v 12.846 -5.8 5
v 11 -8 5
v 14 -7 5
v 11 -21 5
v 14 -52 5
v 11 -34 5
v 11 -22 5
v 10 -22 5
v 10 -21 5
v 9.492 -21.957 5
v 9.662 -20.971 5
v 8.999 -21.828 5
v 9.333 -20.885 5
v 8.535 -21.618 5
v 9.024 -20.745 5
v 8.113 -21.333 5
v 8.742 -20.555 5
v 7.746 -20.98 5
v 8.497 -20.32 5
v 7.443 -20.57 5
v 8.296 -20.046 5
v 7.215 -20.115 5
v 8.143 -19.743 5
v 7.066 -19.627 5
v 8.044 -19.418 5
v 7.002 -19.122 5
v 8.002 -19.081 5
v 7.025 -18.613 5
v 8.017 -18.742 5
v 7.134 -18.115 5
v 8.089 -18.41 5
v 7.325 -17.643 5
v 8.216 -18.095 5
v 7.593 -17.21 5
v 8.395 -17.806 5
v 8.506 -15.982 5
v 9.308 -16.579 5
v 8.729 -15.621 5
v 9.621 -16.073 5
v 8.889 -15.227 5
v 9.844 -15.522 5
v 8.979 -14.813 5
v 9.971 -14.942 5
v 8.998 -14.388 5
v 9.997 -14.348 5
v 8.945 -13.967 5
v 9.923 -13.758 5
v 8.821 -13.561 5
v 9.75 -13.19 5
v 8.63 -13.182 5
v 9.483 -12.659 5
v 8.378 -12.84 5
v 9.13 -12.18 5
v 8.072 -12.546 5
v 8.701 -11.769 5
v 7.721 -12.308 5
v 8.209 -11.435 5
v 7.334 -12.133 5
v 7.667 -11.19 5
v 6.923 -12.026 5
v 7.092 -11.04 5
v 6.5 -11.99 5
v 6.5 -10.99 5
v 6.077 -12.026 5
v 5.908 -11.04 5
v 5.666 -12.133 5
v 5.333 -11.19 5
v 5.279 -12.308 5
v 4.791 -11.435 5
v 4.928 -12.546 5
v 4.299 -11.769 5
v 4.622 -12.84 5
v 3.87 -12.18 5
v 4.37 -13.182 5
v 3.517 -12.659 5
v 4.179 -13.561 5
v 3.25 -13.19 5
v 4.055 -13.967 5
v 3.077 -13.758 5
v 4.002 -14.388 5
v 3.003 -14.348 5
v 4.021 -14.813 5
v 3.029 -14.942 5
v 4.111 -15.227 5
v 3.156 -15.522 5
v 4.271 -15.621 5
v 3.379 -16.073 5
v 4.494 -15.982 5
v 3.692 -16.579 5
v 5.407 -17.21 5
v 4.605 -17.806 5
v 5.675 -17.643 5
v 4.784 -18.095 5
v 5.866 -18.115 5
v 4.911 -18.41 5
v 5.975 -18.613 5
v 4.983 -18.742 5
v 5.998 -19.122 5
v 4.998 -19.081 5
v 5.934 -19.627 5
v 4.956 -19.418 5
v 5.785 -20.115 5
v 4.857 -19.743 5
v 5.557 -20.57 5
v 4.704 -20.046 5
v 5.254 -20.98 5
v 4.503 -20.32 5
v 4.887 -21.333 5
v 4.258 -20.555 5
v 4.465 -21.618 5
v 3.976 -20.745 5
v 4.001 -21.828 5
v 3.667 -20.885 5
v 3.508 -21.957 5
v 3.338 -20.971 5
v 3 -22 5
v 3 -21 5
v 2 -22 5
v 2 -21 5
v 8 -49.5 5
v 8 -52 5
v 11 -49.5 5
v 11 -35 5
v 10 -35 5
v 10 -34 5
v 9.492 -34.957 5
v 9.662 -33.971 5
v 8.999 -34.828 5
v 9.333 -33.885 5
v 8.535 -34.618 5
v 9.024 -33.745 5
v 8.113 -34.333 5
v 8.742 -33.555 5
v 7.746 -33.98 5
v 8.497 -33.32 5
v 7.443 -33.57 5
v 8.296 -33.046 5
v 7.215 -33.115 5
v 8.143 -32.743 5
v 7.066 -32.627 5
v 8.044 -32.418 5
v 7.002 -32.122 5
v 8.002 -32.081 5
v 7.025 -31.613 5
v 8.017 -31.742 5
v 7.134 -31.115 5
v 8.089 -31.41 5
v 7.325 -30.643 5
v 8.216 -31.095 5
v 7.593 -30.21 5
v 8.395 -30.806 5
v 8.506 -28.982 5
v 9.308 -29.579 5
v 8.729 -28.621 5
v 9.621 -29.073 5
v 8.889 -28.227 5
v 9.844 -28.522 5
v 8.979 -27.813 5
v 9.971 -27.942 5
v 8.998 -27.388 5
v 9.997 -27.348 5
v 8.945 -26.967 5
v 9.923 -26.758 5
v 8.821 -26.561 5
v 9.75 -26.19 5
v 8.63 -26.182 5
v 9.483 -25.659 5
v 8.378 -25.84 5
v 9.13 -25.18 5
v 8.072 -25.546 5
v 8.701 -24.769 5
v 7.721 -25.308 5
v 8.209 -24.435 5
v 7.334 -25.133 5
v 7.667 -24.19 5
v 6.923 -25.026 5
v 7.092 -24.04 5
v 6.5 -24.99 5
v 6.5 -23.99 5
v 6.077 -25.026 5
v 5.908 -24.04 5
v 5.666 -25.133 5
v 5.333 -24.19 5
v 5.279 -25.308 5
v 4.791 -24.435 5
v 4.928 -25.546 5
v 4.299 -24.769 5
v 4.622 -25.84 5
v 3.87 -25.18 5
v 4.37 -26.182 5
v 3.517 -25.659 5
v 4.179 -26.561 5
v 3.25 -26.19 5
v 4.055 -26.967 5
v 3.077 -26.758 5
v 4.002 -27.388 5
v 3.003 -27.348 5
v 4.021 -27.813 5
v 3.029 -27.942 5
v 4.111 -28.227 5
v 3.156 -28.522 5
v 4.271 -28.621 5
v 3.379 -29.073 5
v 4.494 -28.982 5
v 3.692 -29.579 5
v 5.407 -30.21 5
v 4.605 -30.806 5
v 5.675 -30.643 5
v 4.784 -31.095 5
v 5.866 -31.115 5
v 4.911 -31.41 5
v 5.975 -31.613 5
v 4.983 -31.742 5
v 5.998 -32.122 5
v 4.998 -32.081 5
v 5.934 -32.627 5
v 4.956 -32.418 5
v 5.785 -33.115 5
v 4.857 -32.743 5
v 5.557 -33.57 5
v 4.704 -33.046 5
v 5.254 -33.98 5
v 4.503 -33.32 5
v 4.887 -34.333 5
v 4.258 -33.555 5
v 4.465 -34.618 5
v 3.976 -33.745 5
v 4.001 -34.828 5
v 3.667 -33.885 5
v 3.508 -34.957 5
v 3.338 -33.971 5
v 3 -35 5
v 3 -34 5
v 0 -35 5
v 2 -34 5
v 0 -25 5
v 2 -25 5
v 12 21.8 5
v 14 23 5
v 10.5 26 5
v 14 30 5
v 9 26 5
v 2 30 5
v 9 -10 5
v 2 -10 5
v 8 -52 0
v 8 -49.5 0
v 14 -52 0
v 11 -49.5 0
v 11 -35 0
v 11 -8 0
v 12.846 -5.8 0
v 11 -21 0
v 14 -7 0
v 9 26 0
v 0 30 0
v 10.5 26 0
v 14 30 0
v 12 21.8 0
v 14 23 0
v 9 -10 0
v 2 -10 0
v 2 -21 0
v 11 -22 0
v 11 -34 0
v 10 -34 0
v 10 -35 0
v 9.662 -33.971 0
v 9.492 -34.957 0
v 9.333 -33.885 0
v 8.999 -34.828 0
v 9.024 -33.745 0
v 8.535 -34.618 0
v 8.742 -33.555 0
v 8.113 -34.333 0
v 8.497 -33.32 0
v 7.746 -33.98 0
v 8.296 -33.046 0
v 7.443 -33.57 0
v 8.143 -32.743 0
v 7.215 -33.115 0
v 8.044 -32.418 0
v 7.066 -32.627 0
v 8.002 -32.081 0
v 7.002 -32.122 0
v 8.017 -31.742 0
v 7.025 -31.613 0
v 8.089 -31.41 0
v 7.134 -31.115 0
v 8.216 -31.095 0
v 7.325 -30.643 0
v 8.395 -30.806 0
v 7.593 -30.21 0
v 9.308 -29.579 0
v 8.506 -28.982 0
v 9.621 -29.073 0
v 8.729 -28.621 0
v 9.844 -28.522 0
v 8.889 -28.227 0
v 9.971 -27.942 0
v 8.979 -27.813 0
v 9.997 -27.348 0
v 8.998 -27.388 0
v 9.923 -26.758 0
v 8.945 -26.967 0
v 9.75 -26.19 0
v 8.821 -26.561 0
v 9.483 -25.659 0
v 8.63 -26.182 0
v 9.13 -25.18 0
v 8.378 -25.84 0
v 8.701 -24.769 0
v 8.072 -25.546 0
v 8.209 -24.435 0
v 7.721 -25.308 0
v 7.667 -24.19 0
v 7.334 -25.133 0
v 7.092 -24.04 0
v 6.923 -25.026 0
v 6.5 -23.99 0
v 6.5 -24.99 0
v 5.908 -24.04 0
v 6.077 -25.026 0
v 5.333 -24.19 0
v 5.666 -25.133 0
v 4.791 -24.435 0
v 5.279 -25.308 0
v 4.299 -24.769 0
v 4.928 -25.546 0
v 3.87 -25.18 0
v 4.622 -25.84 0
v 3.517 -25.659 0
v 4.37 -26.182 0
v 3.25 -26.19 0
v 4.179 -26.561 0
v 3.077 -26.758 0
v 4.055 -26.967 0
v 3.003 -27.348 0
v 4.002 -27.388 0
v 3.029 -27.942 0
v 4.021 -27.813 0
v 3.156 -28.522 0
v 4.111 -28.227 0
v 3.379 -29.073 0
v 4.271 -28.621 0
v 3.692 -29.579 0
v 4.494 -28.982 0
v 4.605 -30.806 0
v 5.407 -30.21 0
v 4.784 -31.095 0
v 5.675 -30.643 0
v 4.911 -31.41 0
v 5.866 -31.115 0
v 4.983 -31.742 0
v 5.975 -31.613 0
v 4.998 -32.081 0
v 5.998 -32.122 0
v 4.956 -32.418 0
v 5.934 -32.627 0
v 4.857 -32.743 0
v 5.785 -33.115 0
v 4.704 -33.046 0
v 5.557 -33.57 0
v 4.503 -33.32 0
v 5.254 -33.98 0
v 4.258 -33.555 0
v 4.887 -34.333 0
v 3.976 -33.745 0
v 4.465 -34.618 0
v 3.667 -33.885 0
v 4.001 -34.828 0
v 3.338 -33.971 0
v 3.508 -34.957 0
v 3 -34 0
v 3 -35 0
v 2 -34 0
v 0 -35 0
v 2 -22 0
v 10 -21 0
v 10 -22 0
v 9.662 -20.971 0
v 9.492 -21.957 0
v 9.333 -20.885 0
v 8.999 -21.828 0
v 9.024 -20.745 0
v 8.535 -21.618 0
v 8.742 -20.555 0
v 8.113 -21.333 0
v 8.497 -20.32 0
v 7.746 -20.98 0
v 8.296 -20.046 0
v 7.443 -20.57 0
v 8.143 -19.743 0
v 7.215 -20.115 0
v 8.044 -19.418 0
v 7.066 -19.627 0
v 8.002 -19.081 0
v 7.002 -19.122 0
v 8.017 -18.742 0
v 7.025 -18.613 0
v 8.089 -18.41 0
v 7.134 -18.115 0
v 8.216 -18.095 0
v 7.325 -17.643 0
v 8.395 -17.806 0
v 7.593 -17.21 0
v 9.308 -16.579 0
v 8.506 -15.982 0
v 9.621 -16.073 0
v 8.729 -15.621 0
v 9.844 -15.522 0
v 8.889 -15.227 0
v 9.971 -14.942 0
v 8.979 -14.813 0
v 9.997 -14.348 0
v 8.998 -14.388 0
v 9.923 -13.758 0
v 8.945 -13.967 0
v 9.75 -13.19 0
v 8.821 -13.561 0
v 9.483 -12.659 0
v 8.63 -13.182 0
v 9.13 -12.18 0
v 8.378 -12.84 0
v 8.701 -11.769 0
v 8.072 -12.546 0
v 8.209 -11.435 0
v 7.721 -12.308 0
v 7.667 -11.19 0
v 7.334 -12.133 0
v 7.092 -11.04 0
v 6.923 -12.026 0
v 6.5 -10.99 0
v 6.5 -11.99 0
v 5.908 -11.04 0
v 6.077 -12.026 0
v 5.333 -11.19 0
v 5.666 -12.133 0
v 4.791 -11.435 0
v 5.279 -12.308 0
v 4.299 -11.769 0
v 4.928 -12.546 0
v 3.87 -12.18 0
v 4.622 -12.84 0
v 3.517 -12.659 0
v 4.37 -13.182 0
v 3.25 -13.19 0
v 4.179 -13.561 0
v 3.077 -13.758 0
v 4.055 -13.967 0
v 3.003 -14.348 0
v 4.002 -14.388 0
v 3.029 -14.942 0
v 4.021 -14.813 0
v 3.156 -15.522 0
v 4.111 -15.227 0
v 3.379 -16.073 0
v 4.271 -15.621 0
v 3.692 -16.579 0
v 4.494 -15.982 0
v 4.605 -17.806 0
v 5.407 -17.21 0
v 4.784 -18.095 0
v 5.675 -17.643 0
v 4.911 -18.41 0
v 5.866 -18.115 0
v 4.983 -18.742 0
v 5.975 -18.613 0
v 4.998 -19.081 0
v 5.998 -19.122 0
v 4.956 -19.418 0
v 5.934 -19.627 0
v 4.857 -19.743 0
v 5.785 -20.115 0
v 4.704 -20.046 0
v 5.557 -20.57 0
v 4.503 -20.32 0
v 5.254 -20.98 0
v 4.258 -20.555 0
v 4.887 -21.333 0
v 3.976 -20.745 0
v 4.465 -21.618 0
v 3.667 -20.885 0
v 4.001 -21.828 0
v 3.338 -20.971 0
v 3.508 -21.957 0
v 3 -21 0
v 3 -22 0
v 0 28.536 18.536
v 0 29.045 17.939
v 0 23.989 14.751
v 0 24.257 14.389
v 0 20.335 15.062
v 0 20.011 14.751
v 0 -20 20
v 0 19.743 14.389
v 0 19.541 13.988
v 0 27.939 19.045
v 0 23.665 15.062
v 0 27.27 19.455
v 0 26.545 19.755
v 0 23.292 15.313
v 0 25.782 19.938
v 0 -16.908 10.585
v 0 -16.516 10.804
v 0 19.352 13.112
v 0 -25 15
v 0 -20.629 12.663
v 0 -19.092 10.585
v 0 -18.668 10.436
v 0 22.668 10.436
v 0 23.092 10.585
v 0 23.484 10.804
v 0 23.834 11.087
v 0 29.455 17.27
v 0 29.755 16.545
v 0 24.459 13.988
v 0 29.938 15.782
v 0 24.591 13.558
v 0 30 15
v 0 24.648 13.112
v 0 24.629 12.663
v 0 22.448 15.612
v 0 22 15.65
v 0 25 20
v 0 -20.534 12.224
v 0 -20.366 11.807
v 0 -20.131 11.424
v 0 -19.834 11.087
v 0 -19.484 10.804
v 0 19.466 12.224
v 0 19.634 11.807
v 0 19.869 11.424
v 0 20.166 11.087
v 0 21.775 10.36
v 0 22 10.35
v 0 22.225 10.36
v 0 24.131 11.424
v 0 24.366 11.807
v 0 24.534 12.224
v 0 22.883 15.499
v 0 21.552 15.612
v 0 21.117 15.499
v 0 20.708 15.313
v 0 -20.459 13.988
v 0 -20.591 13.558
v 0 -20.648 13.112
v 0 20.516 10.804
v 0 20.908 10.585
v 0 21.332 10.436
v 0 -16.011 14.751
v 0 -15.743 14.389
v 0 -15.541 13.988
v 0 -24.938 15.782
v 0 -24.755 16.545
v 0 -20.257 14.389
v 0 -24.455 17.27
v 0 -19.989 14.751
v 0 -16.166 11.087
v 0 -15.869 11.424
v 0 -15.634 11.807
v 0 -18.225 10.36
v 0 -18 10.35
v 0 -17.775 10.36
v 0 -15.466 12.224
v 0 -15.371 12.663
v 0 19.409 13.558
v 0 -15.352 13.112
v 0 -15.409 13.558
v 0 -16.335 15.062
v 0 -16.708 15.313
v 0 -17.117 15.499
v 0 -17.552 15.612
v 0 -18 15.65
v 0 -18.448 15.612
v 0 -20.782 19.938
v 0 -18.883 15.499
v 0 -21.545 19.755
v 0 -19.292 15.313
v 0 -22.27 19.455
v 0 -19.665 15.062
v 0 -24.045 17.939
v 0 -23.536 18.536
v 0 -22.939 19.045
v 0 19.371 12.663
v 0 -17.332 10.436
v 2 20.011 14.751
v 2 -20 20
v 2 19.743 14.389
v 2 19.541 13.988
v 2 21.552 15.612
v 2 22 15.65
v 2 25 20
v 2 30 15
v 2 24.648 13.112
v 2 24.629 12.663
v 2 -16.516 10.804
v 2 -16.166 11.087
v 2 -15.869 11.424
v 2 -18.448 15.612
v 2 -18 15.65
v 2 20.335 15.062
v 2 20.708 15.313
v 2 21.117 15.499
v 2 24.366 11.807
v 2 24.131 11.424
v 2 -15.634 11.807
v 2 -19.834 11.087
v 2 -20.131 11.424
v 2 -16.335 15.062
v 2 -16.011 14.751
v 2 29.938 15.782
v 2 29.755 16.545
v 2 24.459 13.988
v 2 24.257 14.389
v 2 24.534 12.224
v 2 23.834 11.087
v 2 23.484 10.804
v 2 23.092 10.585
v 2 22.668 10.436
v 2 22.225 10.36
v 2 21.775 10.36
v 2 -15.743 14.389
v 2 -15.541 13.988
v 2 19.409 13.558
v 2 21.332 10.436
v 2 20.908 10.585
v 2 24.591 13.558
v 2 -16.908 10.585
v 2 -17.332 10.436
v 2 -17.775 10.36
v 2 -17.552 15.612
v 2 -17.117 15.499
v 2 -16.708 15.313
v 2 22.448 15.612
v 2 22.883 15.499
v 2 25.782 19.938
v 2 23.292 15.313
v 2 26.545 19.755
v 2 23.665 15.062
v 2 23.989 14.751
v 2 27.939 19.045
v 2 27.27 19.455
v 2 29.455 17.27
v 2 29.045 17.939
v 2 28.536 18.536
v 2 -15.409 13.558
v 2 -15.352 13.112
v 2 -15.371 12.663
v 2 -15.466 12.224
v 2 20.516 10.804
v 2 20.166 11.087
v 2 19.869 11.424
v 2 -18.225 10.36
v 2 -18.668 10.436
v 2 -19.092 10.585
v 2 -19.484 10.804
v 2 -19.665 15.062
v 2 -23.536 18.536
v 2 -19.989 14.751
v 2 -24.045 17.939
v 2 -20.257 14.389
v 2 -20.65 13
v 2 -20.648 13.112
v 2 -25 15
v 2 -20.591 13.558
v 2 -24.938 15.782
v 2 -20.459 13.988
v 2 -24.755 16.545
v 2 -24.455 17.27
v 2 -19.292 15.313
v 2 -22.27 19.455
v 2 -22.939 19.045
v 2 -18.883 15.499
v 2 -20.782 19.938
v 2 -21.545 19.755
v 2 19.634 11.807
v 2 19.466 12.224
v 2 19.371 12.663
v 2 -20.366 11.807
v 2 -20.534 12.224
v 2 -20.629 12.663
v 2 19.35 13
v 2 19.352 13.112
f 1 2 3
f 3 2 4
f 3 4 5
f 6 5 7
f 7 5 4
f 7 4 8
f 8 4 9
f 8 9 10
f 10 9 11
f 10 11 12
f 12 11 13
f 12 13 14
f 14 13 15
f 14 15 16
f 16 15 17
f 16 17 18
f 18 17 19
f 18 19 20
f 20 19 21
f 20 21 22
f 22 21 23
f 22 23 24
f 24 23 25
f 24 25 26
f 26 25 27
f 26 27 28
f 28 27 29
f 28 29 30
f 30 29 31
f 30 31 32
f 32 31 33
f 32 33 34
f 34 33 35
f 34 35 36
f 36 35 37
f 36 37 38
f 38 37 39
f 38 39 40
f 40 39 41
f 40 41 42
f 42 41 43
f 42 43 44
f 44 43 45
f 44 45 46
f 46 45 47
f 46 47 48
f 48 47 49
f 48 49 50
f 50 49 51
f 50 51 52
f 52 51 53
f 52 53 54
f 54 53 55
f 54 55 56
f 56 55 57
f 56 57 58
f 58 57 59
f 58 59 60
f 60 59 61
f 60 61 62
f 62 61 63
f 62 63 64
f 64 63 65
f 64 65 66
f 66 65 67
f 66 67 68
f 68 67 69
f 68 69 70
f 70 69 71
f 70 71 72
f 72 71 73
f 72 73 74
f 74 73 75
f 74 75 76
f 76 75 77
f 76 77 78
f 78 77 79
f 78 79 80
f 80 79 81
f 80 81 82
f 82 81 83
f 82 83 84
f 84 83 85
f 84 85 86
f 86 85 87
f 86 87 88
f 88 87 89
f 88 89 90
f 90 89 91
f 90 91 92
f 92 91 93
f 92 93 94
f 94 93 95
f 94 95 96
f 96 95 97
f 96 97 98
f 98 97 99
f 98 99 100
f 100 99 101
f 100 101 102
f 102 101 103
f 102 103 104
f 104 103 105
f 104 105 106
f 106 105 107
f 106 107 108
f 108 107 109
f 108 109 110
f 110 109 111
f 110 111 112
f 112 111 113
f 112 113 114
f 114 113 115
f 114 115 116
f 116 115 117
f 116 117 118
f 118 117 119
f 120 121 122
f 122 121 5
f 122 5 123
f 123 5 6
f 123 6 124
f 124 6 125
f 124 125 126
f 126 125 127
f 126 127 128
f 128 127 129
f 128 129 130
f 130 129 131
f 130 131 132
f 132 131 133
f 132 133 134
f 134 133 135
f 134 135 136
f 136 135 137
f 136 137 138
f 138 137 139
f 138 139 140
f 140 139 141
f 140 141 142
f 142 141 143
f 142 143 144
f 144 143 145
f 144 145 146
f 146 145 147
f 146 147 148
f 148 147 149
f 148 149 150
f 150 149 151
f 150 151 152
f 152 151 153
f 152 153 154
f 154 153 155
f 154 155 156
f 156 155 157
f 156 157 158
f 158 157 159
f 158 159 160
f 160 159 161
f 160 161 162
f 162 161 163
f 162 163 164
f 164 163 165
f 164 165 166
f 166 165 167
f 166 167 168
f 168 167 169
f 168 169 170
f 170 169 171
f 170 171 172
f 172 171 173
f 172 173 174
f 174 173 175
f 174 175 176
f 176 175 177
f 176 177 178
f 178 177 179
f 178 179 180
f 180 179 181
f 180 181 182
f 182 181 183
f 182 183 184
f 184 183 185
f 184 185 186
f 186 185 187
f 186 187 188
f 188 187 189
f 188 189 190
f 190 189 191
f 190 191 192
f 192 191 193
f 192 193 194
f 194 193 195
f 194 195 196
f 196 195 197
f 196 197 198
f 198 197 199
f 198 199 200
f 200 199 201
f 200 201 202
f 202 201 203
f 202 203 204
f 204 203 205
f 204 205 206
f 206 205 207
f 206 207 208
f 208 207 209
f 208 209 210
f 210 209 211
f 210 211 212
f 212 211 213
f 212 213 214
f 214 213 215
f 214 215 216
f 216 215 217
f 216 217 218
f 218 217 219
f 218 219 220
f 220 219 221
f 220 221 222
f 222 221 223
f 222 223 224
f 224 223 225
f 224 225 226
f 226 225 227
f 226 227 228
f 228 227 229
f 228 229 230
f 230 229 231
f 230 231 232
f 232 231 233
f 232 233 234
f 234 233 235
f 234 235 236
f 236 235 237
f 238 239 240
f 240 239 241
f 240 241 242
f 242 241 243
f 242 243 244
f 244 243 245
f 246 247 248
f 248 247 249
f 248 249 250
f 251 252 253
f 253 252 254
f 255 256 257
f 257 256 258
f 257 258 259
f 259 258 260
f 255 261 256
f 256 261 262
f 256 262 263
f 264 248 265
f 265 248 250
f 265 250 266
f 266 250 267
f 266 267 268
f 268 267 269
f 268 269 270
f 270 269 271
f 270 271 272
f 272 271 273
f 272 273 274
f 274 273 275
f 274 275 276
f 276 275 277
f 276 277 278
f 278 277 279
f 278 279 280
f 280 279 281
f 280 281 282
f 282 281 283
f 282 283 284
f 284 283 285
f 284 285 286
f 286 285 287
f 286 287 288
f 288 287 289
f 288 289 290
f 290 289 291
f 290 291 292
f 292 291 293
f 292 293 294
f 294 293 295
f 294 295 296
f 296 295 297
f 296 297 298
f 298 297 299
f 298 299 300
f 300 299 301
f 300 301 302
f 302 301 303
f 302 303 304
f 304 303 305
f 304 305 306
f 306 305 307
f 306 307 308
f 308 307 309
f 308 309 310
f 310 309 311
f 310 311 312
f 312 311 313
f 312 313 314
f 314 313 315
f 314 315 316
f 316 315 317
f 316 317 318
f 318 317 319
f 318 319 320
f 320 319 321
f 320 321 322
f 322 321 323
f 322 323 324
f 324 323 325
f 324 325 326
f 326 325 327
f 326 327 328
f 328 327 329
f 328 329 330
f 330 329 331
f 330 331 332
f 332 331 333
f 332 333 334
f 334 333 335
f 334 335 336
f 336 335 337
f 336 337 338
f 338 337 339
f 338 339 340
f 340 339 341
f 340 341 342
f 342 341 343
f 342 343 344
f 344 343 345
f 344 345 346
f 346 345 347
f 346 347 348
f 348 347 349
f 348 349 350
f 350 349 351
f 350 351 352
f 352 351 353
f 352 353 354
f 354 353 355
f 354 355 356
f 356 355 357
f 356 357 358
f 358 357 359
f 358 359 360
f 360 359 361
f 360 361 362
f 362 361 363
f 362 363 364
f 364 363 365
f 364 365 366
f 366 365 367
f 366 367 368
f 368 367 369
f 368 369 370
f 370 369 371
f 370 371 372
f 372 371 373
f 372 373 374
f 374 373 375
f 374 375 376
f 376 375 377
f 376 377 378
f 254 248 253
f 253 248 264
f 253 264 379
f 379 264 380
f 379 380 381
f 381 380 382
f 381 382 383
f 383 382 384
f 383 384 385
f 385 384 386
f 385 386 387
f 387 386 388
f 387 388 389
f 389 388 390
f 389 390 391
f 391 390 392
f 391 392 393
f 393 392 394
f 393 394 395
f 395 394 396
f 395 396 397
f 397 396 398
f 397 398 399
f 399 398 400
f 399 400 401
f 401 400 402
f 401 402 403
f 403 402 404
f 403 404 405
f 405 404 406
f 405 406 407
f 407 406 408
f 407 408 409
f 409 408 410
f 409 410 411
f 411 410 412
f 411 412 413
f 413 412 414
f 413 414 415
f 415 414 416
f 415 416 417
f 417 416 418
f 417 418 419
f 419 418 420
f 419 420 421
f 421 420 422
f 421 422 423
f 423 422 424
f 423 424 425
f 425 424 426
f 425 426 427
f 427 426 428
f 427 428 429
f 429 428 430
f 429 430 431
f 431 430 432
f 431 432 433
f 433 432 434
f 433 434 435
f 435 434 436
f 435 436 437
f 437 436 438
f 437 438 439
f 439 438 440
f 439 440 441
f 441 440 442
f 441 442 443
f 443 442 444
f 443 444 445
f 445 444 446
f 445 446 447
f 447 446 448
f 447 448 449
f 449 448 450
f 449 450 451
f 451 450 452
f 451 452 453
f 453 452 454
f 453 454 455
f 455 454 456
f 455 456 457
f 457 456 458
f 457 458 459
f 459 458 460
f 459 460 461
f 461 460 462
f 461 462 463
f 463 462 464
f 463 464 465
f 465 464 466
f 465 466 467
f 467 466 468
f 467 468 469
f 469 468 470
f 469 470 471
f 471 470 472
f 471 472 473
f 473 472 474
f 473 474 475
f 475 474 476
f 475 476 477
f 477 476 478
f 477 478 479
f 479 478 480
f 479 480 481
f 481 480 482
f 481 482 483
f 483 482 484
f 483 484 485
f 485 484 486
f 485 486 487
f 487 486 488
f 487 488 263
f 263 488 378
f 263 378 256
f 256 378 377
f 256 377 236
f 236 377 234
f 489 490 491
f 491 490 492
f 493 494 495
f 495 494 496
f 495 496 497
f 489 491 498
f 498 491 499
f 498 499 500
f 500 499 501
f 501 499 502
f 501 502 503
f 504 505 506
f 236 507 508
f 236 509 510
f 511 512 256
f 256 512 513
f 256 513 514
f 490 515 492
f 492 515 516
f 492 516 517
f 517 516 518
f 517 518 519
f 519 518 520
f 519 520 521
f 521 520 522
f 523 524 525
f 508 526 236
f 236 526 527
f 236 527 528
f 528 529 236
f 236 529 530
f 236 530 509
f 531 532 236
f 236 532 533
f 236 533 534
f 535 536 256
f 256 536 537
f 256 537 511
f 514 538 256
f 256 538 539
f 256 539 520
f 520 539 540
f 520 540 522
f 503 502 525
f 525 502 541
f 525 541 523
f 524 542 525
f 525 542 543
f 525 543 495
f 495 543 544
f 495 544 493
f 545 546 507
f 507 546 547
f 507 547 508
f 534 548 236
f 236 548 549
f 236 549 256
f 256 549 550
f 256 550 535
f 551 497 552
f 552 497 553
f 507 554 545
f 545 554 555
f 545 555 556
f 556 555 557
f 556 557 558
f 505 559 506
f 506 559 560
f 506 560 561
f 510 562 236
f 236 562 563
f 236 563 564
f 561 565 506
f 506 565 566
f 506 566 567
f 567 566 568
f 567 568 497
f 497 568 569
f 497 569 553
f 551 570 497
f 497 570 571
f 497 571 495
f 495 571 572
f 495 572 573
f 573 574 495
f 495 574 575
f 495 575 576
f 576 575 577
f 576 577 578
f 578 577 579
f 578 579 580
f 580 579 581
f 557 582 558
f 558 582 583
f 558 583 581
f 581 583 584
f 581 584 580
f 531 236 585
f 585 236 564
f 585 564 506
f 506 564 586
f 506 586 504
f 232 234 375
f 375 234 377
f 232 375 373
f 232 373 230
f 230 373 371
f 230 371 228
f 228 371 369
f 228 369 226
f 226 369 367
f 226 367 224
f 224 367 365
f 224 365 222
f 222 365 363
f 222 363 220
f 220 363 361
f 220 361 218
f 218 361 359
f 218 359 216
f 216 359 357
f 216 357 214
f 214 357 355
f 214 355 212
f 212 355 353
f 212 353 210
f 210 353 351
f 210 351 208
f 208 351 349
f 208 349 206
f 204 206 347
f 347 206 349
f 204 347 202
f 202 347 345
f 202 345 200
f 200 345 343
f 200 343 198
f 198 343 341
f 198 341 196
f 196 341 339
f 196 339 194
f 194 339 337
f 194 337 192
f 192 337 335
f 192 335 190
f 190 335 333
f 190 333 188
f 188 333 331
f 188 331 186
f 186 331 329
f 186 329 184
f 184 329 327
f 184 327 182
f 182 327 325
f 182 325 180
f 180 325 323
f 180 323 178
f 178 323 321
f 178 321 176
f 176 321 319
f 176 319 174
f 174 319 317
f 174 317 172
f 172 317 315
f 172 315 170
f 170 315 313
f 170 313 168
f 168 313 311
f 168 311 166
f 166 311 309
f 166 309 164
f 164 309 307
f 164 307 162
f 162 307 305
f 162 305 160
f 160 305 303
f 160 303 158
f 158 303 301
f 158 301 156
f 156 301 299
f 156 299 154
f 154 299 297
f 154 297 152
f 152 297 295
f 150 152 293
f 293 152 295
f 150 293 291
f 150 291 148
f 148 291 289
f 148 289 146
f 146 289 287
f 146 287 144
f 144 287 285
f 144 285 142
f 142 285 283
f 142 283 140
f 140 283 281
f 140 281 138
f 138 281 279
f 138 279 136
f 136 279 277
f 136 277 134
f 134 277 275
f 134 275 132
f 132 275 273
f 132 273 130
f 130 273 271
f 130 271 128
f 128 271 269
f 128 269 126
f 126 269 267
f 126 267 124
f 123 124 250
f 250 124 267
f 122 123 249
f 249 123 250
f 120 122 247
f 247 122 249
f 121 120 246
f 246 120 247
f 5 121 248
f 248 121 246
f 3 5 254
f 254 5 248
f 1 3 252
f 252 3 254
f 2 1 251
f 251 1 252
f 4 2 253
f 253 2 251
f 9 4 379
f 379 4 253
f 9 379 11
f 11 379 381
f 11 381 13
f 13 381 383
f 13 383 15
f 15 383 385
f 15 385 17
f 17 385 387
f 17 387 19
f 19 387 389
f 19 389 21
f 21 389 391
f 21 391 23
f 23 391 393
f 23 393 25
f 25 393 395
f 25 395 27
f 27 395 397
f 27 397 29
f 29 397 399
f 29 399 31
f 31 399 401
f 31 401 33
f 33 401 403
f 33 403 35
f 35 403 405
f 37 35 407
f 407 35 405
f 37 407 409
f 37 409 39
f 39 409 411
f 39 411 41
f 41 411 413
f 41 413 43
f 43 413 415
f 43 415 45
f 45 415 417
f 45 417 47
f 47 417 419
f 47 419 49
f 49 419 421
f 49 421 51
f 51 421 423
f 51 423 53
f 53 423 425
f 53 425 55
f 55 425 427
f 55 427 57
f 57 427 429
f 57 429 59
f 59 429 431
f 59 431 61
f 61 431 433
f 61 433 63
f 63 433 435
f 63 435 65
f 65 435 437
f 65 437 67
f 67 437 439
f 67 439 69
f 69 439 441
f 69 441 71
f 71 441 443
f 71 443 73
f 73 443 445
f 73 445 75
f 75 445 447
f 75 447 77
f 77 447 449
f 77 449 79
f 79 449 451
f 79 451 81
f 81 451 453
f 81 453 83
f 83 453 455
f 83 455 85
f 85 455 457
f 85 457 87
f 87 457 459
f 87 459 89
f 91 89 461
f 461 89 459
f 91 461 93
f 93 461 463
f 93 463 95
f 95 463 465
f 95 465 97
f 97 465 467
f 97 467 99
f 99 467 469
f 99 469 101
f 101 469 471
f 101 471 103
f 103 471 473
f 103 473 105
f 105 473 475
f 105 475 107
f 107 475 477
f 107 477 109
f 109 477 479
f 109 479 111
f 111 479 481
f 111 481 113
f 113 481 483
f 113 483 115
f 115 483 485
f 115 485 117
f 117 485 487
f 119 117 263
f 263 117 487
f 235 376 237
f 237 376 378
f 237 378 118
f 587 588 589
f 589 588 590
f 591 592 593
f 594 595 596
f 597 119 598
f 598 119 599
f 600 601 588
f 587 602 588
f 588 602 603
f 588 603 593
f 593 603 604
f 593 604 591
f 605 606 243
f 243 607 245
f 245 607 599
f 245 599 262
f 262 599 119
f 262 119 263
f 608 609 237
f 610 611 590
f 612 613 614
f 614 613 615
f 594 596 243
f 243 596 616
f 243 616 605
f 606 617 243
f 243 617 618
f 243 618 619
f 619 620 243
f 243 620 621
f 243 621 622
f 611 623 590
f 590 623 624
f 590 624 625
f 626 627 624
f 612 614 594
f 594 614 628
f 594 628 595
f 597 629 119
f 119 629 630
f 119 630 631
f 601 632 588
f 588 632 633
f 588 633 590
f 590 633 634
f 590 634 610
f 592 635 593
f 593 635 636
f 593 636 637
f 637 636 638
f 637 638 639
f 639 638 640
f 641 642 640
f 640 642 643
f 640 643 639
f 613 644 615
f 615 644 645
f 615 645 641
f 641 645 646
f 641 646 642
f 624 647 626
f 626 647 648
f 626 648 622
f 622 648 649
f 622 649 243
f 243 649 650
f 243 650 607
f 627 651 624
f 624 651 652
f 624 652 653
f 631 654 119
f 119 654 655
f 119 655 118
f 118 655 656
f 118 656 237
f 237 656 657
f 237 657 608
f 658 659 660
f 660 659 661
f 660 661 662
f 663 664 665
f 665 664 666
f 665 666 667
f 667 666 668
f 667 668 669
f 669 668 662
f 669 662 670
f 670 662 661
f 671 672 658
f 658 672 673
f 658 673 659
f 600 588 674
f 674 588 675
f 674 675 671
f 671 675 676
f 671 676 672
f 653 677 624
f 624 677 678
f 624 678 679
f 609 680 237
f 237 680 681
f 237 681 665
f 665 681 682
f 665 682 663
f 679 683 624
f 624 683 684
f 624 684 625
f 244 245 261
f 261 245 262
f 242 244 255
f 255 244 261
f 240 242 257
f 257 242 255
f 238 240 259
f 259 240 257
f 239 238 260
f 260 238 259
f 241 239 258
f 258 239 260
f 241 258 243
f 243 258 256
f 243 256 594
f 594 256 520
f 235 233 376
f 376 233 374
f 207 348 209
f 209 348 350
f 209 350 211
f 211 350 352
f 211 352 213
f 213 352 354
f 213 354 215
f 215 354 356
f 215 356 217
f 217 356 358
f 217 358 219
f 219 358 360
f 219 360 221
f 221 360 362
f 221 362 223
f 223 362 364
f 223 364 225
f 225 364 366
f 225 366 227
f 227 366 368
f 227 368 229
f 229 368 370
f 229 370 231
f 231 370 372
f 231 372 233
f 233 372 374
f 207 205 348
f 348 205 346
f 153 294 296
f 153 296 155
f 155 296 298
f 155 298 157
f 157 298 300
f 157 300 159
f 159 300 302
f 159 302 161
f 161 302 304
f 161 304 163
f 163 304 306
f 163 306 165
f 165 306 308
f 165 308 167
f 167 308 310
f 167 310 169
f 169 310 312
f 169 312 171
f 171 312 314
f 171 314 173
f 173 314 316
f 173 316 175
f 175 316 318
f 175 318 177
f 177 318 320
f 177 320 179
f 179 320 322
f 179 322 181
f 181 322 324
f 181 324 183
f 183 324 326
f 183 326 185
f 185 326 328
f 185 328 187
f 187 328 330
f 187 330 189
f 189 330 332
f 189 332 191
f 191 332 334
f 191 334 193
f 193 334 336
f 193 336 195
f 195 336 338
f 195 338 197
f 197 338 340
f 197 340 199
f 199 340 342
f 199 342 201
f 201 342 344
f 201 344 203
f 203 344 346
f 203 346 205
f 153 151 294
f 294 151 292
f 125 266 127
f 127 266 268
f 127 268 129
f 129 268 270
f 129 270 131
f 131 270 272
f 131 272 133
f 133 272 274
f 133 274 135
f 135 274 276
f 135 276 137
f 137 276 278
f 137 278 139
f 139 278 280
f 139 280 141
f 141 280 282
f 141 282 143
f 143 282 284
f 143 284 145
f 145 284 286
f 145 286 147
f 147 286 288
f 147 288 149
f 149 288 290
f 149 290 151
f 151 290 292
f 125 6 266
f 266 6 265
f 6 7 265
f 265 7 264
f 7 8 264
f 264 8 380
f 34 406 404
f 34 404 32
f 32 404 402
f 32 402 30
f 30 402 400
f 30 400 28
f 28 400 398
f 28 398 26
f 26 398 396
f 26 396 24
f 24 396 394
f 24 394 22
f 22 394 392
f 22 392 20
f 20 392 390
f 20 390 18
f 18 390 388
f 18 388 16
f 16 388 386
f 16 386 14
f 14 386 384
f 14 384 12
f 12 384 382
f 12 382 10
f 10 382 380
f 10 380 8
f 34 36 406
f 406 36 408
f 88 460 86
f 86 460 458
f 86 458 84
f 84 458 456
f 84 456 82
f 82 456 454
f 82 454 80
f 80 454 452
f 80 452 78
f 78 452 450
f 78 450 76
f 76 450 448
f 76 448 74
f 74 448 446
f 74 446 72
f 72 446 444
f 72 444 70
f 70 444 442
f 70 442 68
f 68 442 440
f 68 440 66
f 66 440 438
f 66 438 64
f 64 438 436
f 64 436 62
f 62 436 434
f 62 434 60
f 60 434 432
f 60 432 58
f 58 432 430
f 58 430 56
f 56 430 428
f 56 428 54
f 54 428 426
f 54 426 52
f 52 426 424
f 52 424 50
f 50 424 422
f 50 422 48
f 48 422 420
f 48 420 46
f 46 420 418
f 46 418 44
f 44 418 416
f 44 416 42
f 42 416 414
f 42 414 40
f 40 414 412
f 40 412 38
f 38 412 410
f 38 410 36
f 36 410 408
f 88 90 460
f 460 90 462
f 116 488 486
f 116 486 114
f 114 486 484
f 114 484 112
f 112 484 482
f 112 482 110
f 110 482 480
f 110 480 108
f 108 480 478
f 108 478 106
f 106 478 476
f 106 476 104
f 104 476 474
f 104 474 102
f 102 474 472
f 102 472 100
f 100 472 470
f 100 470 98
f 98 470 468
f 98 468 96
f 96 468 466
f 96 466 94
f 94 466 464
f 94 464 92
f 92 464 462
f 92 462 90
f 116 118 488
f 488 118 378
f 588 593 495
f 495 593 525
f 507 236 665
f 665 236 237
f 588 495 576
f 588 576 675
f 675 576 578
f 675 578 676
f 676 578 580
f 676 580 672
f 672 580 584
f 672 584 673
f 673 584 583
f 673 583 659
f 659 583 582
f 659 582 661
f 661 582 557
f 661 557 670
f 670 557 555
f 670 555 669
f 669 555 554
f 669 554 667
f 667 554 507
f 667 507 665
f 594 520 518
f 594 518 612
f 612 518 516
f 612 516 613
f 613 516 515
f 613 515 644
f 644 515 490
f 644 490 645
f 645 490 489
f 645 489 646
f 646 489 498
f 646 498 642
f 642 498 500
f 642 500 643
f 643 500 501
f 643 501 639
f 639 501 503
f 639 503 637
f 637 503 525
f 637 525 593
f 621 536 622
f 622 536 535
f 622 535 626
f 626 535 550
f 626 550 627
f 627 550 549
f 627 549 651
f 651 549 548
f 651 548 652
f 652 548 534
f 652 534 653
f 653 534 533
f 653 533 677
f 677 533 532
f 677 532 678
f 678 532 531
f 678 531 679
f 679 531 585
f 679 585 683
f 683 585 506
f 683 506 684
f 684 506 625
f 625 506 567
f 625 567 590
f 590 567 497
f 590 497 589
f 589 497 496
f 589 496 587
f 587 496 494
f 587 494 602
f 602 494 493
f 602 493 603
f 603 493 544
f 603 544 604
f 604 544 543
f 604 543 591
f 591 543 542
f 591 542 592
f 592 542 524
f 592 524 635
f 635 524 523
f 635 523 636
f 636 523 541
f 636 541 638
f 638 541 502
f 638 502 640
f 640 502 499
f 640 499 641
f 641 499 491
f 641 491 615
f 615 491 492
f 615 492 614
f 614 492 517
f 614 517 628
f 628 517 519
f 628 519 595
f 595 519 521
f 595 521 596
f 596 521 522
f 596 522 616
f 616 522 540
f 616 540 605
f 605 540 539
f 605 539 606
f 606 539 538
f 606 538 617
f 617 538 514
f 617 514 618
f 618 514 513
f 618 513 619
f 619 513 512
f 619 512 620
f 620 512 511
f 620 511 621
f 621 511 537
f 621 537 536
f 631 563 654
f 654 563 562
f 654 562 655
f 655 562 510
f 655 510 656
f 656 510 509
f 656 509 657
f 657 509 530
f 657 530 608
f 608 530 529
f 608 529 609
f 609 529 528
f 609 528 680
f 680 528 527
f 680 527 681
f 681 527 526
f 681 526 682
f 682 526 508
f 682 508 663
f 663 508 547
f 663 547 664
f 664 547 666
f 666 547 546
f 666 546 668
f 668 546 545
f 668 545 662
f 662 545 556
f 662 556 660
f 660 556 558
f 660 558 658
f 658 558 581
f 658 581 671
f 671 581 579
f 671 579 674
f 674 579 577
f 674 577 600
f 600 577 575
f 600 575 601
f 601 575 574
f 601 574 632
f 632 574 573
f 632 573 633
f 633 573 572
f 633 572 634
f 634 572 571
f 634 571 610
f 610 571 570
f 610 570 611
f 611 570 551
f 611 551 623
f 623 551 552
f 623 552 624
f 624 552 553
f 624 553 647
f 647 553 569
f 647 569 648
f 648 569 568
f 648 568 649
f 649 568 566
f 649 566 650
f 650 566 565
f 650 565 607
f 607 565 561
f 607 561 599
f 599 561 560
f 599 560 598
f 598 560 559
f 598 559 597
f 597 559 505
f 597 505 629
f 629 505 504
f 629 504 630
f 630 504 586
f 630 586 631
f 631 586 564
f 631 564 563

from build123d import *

# Parameters (mm, degrees)
BOSS_EXTRUDE1_DEPTH = 5
SKETCH2_W           = 20
SKETCH2_H           = 55
BOSS_EXTRUDE2_DEPTH = 2
FILLET1_R           = 5
CUT_EXTRUDE1_REACH  = 59.446
SKETCH3_R           = 2.65


with BuildPart() as part:
    # Sketch1 → Boss-Extrude1 (new body)
    with BuildSketch(Plane.XY):
        with BuildLine():
            Line((0, 30), (12, 30))
            Line((12, 30), (14, 30))
            Line((14, 30), (14, 23))
            Line((14, 23), (12, 21.8))
            Line((12, 21.8), (10.5, 26))
            Line((10.5, 26), (9, 26))
            Line((9, 26), (9, -10))
            Line((9, -10), (2, -10))
            Line((2, -10), (2, -12))
            Line((2, -12), (2, -13.5))
            Line((2, -13.5), (2, -21))
            Line((2, -21), (3, -21))
            ThreePointArc((3, -21), (4.787066885, -19.89799329), (4.604774071, -17.806391949))
            Line((4.604774071, -17.806391949), (3.691645375, -16.578714862))
            ThreePointArc((3.691645375, -16.578714862), (6.5, -10.989900772), (9.308354625, -16.578714862))
            Line((9.308354625, -16.578714862), (8.395225929, -17.806391949))
            ThreePointArc((8.395225929, -17.806391949), (8.212933115, -19.89799329), (10, -21))
            Line((10, -21), (11, -21))
            Line((11, -21), (11, -19.8))
            Line((11, -19.8), (11, -18.3))
            Line((11, -18.3), (11, -8))
            Line((11, -8), (12.846019189, -5.8))
            Line((12.846019189, -5.8), (14, -7))
            Line((14, -7), (14, -37))
            Line((14, -37), (14, -40))
            Line((14, -40), (14, -43))
            Line((14, -43), (14, -52))
            Line((14, -52), (8, -52))
            Line((8, -52), (8, -49.5))
            Line((8, -49.5), (11, -49.5))
            Line((11, -49.5), (11, -41.5))
            Line((11, -41.5), (11, -40))
            Line((11, -40), (11, -35))
            Line((11, -35), (10, -35))
            ThreePointArc((10, -35), (7.319399673, -33.346989935), (7.592838893, -30.209587923))
            Line((7.592838893, -30.209587923), (8.505967589, -28.981910837))
            ThreePointArc((8.505967589, -28.981910837), (6.5, -24.989900772), (4.494032411, -28.981910837))
            Line((4.494032411, -28.981910837), (5.407161107, -30.209587923))
            ThreePointArc((5.407161107, -30.209587923), (5.680600328, -33.346989935), (3, -35))
            Line((3, -35), (2, -35))
            Line((2, -35), (0, -35))
            Line((0, -35), (0, 30))
        make_face()
        with BuildLine():
            Line((3, -22), (2, -22))
            Line((2, -22), (2, -33.5))
            Line((2, -33.5), (2, -34))
            Line((2, -34), (3, -34))
            ThreePointArc((3, -34), (4.787066885, -32.89799329), (4.604774071, -30.806391949))
            Line((4.604774071, -30.806391949), (3.691645375, -29.578714862))
            ThreePointArc((3.691645375, -29.578714862), (6.5, -23.989900772), (9.308354625, -29.578714862))
            Line((9.308354625, -29.578714862), (8.395225929, -30.806391949))
            ThreePointArc((8.395225929, -30.806391949), (8.212933115, -32.89799329), (10, -34))
            Line((10, -34), (11, -34))
            Line((11, -34), (11, -22))
            Line((11, -22), (10, -22))
            ThreePointArc((10, -22), (7.319399672, -20.346989935), (7.592838893, -17.209587923))
            Line((7.592838893, -17.209587923), (8.505967589, -15.981910837))
            ThreePointArc((8.505967589, -15.981910837), (6.5, -11.989900772), (4.494032411, -15.981910837))
            Line((4.494032411, -15.981910837), (5.407161107, -17.209587923))
            ThreePointArc((5.407161107, -17.209587923), (5.680600328, -20.346989935), (3, -22))
        make_face(mode=Mode.SUBTRACT)
    extrude(amount=BOSS_EXTRUDE1_DEPTH)

    # Sketch2 → Boss-Extrude2 (add)
    with BuildSketch(Plane(origin=(0, 0, 0), x_dir=(0, 0, -1), z_dir=(1, 0, 0))):
        with Locations((-10, 2.5)):
            Rectangle(SKETCH2_W, SKETCH2_H)
    extrude(amount=BOSS_EXTRUDE2_DEPTH)

    # Fillet1
    fillet1_edges = [part.edges().sort_by_distance(p)[0] for p in [
        (1, 30, 20),
        (1, -25, 20),
    ]]
    fillet(fillet1_edges, radius=FILLET1_R)

    # Sketch3 → Cut-Extrude1 (cut, up to next)
    with BuildSketch(Plane(origin=(0, 0, 0), x_dir=(0, 0, -1), z_dir=(1, 0, 0)), mode=Mode.PRIVATE) as cut_extrude1_sk1:
        with Locations(Location((-13, 22, 0), (0, 0, 270))):
            Circle(SKETCH3_R)
    cut_extrude1_tool1 = extrude(cut_extrude1_sk1.sketch, amount=CUT_EXTRUDE1_REACH, mode=Mode.PRIVATE) & part.part
    # Sketch3 → Cut-Extrude1 (cut, up to next)
    with BuildSketch(Plane(origin=(0, 0, 0), x_dir=(0, 0, -1), z_dir=(1, 0, 0)), mode=Mode.PRIVATE) as cut_extrude1_sk2:
        with Locations(Location((-13, -18, 0), (0, 0, 270))):
            Circle(SKETCH3_R)
    cut_extrude1_tool2 = extrude(cut_extrude1_sk2.sketch, amount=CUT_EXTRUDE1_REACH, mode=Mode.PRIVATE) & part.part
    add(cut_extrude1_tool1.solids().sort_by_distance((0, 22, 13))[0], mode=Mode.SUBTRACT)
    add(cut_extrude1_tool2.solids().sort_by_distance((0, -18, 13))[0], mode=Mode.SUBTRACT)


solid = part.part
